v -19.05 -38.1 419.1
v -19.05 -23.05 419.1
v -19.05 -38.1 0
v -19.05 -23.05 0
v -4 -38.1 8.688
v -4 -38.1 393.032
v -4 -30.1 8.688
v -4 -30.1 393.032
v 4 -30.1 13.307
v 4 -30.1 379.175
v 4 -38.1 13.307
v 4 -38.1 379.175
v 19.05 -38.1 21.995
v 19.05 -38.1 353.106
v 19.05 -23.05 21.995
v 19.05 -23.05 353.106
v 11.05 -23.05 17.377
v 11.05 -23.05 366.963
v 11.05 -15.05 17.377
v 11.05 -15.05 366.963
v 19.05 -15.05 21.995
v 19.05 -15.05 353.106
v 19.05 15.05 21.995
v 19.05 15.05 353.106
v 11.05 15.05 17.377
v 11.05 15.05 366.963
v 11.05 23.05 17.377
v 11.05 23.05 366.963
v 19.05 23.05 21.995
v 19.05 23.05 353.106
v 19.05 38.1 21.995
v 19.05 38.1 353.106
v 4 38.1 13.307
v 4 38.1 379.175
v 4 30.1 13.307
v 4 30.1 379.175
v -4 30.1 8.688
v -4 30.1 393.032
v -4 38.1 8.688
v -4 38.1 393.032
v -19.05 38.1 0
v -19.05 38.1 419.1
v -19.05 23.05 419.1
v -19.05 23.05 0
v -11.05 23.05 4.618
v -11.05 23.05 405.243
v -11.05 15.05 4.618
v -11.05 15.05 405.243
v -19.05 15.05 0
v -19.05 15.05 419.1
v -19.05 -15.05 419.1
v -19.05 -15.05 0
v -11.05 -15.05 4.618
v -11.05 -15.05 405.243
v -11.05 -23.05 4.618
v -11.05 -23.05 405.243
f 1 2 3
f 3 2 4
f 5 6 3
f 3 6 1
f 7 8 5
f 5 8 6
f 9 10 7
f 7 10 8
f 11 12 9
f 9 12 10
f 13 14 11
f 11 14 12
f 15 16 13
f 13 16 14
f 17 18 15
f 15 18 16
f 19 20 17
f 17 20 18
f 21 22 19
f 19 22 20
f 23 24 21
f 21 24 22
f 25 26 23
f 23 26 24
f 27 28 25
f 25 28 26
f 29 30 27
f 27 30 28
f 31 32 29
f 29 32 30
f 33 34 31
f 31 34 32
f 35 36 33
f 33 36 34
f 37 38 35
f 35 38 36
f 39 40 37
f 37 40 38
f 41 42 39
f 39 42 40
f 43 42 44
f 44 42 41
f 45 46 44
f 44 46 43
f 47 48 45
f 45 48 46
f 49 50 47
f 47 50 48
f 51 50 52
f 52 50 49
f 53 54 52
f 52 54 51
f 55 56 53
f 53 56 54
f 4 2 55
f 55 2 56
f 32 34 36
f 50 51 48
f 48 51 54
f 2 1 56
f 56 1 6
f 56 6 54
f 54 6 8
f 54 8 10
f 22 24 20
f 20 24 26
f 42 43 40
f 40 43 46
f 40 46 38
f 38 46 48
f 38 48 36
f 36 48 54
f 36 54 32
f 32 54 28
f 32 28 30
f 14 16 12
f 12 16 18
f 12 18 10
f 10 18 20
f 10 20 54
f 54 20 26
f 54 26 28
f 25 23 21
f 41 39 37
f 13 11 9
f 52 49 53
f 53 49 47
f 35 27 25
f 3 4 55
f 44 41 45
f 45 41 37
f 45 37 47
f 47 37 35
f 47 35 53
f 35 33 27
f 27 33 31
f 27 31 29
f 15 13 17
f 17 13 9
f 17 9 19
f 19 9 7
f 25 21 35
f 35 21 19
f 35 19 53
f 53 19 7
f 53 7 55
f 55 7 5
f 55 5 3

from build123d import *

# Parameters (mm, degrees)
PROFILE_DEPTH     = 419.1
MITER1_DEPTH      = 422.259210582
MITER1_DEPTH_BACK = 422.259210582
MITER2_DEPTH      = 422.259210582
MITER2_DEPTH_BACK = 422.259210582


with BuildPart() as part:
    # Sketch1 → Profile (new body)
    with BuildSketch(Plane.XY):
        Polygon((-19.05, -38.1), (-4, -38.1), (-4, -30.1), (4, -30.1), (4, -38.1), (19.05, -38.1), (19.05, -23.05), (11.05, -23.05), (11.05, -15.05), (19.05, -15.05), (19.05, 15.05), (11.05, 15.05), (11.05, 23.05), (19.05, 23.05), (19.05, 38.1), (4, 38.1), (4, 30.1), (-4, 30.1), (-4, 38.1), (-19.05, 38.1), (-19.05, 23.05), (-11.05, 23.05), (-11.05, 15.05), (-19.05, 15.05), (-19.05, -15.05), (-11.05, -15.05), (-11.05, -23.05), (-19.05, -23.05), align=None)
    extrude(amount=PROFILE_DEPTH)

    # Sketch2 → Miter1 (cut, two sides: drawn at the far end of the back side and taken through both)
    with BuildSketch(Plane(origin=(0, 0, 0), x_dir=(1, 0, 0), z_dir=(0, 1, 0)).offset(-MITER1_DEPTH_BACK)):
        Polygon((-19.05, -419.1), (25, -342.8), (25, -430), align=None)
    extrude(amount=MITER1_DEPTH + MITER1_DEPTH_BACK, mode=Mode.SUBTRACT)

    # Sketch3 → Miter2 (cut, two sides: drawn at the far end of the back side and taken through both)
    with BuildSketch(Plane(origin=(0, 0, 0), x_dir=(1, 0, 0), z_dir=(0, 1, 0)).offset(-MITER2_DEPTH_BACK)):
        Polygon((-19.05, 0), (25, 10), (25, -25.43), align=None)
    extrude(amount=MITER2_DEPTH + MITER2_DEPTH_BACK, mode=Mode.SUBTRACT)


solid = part.part
